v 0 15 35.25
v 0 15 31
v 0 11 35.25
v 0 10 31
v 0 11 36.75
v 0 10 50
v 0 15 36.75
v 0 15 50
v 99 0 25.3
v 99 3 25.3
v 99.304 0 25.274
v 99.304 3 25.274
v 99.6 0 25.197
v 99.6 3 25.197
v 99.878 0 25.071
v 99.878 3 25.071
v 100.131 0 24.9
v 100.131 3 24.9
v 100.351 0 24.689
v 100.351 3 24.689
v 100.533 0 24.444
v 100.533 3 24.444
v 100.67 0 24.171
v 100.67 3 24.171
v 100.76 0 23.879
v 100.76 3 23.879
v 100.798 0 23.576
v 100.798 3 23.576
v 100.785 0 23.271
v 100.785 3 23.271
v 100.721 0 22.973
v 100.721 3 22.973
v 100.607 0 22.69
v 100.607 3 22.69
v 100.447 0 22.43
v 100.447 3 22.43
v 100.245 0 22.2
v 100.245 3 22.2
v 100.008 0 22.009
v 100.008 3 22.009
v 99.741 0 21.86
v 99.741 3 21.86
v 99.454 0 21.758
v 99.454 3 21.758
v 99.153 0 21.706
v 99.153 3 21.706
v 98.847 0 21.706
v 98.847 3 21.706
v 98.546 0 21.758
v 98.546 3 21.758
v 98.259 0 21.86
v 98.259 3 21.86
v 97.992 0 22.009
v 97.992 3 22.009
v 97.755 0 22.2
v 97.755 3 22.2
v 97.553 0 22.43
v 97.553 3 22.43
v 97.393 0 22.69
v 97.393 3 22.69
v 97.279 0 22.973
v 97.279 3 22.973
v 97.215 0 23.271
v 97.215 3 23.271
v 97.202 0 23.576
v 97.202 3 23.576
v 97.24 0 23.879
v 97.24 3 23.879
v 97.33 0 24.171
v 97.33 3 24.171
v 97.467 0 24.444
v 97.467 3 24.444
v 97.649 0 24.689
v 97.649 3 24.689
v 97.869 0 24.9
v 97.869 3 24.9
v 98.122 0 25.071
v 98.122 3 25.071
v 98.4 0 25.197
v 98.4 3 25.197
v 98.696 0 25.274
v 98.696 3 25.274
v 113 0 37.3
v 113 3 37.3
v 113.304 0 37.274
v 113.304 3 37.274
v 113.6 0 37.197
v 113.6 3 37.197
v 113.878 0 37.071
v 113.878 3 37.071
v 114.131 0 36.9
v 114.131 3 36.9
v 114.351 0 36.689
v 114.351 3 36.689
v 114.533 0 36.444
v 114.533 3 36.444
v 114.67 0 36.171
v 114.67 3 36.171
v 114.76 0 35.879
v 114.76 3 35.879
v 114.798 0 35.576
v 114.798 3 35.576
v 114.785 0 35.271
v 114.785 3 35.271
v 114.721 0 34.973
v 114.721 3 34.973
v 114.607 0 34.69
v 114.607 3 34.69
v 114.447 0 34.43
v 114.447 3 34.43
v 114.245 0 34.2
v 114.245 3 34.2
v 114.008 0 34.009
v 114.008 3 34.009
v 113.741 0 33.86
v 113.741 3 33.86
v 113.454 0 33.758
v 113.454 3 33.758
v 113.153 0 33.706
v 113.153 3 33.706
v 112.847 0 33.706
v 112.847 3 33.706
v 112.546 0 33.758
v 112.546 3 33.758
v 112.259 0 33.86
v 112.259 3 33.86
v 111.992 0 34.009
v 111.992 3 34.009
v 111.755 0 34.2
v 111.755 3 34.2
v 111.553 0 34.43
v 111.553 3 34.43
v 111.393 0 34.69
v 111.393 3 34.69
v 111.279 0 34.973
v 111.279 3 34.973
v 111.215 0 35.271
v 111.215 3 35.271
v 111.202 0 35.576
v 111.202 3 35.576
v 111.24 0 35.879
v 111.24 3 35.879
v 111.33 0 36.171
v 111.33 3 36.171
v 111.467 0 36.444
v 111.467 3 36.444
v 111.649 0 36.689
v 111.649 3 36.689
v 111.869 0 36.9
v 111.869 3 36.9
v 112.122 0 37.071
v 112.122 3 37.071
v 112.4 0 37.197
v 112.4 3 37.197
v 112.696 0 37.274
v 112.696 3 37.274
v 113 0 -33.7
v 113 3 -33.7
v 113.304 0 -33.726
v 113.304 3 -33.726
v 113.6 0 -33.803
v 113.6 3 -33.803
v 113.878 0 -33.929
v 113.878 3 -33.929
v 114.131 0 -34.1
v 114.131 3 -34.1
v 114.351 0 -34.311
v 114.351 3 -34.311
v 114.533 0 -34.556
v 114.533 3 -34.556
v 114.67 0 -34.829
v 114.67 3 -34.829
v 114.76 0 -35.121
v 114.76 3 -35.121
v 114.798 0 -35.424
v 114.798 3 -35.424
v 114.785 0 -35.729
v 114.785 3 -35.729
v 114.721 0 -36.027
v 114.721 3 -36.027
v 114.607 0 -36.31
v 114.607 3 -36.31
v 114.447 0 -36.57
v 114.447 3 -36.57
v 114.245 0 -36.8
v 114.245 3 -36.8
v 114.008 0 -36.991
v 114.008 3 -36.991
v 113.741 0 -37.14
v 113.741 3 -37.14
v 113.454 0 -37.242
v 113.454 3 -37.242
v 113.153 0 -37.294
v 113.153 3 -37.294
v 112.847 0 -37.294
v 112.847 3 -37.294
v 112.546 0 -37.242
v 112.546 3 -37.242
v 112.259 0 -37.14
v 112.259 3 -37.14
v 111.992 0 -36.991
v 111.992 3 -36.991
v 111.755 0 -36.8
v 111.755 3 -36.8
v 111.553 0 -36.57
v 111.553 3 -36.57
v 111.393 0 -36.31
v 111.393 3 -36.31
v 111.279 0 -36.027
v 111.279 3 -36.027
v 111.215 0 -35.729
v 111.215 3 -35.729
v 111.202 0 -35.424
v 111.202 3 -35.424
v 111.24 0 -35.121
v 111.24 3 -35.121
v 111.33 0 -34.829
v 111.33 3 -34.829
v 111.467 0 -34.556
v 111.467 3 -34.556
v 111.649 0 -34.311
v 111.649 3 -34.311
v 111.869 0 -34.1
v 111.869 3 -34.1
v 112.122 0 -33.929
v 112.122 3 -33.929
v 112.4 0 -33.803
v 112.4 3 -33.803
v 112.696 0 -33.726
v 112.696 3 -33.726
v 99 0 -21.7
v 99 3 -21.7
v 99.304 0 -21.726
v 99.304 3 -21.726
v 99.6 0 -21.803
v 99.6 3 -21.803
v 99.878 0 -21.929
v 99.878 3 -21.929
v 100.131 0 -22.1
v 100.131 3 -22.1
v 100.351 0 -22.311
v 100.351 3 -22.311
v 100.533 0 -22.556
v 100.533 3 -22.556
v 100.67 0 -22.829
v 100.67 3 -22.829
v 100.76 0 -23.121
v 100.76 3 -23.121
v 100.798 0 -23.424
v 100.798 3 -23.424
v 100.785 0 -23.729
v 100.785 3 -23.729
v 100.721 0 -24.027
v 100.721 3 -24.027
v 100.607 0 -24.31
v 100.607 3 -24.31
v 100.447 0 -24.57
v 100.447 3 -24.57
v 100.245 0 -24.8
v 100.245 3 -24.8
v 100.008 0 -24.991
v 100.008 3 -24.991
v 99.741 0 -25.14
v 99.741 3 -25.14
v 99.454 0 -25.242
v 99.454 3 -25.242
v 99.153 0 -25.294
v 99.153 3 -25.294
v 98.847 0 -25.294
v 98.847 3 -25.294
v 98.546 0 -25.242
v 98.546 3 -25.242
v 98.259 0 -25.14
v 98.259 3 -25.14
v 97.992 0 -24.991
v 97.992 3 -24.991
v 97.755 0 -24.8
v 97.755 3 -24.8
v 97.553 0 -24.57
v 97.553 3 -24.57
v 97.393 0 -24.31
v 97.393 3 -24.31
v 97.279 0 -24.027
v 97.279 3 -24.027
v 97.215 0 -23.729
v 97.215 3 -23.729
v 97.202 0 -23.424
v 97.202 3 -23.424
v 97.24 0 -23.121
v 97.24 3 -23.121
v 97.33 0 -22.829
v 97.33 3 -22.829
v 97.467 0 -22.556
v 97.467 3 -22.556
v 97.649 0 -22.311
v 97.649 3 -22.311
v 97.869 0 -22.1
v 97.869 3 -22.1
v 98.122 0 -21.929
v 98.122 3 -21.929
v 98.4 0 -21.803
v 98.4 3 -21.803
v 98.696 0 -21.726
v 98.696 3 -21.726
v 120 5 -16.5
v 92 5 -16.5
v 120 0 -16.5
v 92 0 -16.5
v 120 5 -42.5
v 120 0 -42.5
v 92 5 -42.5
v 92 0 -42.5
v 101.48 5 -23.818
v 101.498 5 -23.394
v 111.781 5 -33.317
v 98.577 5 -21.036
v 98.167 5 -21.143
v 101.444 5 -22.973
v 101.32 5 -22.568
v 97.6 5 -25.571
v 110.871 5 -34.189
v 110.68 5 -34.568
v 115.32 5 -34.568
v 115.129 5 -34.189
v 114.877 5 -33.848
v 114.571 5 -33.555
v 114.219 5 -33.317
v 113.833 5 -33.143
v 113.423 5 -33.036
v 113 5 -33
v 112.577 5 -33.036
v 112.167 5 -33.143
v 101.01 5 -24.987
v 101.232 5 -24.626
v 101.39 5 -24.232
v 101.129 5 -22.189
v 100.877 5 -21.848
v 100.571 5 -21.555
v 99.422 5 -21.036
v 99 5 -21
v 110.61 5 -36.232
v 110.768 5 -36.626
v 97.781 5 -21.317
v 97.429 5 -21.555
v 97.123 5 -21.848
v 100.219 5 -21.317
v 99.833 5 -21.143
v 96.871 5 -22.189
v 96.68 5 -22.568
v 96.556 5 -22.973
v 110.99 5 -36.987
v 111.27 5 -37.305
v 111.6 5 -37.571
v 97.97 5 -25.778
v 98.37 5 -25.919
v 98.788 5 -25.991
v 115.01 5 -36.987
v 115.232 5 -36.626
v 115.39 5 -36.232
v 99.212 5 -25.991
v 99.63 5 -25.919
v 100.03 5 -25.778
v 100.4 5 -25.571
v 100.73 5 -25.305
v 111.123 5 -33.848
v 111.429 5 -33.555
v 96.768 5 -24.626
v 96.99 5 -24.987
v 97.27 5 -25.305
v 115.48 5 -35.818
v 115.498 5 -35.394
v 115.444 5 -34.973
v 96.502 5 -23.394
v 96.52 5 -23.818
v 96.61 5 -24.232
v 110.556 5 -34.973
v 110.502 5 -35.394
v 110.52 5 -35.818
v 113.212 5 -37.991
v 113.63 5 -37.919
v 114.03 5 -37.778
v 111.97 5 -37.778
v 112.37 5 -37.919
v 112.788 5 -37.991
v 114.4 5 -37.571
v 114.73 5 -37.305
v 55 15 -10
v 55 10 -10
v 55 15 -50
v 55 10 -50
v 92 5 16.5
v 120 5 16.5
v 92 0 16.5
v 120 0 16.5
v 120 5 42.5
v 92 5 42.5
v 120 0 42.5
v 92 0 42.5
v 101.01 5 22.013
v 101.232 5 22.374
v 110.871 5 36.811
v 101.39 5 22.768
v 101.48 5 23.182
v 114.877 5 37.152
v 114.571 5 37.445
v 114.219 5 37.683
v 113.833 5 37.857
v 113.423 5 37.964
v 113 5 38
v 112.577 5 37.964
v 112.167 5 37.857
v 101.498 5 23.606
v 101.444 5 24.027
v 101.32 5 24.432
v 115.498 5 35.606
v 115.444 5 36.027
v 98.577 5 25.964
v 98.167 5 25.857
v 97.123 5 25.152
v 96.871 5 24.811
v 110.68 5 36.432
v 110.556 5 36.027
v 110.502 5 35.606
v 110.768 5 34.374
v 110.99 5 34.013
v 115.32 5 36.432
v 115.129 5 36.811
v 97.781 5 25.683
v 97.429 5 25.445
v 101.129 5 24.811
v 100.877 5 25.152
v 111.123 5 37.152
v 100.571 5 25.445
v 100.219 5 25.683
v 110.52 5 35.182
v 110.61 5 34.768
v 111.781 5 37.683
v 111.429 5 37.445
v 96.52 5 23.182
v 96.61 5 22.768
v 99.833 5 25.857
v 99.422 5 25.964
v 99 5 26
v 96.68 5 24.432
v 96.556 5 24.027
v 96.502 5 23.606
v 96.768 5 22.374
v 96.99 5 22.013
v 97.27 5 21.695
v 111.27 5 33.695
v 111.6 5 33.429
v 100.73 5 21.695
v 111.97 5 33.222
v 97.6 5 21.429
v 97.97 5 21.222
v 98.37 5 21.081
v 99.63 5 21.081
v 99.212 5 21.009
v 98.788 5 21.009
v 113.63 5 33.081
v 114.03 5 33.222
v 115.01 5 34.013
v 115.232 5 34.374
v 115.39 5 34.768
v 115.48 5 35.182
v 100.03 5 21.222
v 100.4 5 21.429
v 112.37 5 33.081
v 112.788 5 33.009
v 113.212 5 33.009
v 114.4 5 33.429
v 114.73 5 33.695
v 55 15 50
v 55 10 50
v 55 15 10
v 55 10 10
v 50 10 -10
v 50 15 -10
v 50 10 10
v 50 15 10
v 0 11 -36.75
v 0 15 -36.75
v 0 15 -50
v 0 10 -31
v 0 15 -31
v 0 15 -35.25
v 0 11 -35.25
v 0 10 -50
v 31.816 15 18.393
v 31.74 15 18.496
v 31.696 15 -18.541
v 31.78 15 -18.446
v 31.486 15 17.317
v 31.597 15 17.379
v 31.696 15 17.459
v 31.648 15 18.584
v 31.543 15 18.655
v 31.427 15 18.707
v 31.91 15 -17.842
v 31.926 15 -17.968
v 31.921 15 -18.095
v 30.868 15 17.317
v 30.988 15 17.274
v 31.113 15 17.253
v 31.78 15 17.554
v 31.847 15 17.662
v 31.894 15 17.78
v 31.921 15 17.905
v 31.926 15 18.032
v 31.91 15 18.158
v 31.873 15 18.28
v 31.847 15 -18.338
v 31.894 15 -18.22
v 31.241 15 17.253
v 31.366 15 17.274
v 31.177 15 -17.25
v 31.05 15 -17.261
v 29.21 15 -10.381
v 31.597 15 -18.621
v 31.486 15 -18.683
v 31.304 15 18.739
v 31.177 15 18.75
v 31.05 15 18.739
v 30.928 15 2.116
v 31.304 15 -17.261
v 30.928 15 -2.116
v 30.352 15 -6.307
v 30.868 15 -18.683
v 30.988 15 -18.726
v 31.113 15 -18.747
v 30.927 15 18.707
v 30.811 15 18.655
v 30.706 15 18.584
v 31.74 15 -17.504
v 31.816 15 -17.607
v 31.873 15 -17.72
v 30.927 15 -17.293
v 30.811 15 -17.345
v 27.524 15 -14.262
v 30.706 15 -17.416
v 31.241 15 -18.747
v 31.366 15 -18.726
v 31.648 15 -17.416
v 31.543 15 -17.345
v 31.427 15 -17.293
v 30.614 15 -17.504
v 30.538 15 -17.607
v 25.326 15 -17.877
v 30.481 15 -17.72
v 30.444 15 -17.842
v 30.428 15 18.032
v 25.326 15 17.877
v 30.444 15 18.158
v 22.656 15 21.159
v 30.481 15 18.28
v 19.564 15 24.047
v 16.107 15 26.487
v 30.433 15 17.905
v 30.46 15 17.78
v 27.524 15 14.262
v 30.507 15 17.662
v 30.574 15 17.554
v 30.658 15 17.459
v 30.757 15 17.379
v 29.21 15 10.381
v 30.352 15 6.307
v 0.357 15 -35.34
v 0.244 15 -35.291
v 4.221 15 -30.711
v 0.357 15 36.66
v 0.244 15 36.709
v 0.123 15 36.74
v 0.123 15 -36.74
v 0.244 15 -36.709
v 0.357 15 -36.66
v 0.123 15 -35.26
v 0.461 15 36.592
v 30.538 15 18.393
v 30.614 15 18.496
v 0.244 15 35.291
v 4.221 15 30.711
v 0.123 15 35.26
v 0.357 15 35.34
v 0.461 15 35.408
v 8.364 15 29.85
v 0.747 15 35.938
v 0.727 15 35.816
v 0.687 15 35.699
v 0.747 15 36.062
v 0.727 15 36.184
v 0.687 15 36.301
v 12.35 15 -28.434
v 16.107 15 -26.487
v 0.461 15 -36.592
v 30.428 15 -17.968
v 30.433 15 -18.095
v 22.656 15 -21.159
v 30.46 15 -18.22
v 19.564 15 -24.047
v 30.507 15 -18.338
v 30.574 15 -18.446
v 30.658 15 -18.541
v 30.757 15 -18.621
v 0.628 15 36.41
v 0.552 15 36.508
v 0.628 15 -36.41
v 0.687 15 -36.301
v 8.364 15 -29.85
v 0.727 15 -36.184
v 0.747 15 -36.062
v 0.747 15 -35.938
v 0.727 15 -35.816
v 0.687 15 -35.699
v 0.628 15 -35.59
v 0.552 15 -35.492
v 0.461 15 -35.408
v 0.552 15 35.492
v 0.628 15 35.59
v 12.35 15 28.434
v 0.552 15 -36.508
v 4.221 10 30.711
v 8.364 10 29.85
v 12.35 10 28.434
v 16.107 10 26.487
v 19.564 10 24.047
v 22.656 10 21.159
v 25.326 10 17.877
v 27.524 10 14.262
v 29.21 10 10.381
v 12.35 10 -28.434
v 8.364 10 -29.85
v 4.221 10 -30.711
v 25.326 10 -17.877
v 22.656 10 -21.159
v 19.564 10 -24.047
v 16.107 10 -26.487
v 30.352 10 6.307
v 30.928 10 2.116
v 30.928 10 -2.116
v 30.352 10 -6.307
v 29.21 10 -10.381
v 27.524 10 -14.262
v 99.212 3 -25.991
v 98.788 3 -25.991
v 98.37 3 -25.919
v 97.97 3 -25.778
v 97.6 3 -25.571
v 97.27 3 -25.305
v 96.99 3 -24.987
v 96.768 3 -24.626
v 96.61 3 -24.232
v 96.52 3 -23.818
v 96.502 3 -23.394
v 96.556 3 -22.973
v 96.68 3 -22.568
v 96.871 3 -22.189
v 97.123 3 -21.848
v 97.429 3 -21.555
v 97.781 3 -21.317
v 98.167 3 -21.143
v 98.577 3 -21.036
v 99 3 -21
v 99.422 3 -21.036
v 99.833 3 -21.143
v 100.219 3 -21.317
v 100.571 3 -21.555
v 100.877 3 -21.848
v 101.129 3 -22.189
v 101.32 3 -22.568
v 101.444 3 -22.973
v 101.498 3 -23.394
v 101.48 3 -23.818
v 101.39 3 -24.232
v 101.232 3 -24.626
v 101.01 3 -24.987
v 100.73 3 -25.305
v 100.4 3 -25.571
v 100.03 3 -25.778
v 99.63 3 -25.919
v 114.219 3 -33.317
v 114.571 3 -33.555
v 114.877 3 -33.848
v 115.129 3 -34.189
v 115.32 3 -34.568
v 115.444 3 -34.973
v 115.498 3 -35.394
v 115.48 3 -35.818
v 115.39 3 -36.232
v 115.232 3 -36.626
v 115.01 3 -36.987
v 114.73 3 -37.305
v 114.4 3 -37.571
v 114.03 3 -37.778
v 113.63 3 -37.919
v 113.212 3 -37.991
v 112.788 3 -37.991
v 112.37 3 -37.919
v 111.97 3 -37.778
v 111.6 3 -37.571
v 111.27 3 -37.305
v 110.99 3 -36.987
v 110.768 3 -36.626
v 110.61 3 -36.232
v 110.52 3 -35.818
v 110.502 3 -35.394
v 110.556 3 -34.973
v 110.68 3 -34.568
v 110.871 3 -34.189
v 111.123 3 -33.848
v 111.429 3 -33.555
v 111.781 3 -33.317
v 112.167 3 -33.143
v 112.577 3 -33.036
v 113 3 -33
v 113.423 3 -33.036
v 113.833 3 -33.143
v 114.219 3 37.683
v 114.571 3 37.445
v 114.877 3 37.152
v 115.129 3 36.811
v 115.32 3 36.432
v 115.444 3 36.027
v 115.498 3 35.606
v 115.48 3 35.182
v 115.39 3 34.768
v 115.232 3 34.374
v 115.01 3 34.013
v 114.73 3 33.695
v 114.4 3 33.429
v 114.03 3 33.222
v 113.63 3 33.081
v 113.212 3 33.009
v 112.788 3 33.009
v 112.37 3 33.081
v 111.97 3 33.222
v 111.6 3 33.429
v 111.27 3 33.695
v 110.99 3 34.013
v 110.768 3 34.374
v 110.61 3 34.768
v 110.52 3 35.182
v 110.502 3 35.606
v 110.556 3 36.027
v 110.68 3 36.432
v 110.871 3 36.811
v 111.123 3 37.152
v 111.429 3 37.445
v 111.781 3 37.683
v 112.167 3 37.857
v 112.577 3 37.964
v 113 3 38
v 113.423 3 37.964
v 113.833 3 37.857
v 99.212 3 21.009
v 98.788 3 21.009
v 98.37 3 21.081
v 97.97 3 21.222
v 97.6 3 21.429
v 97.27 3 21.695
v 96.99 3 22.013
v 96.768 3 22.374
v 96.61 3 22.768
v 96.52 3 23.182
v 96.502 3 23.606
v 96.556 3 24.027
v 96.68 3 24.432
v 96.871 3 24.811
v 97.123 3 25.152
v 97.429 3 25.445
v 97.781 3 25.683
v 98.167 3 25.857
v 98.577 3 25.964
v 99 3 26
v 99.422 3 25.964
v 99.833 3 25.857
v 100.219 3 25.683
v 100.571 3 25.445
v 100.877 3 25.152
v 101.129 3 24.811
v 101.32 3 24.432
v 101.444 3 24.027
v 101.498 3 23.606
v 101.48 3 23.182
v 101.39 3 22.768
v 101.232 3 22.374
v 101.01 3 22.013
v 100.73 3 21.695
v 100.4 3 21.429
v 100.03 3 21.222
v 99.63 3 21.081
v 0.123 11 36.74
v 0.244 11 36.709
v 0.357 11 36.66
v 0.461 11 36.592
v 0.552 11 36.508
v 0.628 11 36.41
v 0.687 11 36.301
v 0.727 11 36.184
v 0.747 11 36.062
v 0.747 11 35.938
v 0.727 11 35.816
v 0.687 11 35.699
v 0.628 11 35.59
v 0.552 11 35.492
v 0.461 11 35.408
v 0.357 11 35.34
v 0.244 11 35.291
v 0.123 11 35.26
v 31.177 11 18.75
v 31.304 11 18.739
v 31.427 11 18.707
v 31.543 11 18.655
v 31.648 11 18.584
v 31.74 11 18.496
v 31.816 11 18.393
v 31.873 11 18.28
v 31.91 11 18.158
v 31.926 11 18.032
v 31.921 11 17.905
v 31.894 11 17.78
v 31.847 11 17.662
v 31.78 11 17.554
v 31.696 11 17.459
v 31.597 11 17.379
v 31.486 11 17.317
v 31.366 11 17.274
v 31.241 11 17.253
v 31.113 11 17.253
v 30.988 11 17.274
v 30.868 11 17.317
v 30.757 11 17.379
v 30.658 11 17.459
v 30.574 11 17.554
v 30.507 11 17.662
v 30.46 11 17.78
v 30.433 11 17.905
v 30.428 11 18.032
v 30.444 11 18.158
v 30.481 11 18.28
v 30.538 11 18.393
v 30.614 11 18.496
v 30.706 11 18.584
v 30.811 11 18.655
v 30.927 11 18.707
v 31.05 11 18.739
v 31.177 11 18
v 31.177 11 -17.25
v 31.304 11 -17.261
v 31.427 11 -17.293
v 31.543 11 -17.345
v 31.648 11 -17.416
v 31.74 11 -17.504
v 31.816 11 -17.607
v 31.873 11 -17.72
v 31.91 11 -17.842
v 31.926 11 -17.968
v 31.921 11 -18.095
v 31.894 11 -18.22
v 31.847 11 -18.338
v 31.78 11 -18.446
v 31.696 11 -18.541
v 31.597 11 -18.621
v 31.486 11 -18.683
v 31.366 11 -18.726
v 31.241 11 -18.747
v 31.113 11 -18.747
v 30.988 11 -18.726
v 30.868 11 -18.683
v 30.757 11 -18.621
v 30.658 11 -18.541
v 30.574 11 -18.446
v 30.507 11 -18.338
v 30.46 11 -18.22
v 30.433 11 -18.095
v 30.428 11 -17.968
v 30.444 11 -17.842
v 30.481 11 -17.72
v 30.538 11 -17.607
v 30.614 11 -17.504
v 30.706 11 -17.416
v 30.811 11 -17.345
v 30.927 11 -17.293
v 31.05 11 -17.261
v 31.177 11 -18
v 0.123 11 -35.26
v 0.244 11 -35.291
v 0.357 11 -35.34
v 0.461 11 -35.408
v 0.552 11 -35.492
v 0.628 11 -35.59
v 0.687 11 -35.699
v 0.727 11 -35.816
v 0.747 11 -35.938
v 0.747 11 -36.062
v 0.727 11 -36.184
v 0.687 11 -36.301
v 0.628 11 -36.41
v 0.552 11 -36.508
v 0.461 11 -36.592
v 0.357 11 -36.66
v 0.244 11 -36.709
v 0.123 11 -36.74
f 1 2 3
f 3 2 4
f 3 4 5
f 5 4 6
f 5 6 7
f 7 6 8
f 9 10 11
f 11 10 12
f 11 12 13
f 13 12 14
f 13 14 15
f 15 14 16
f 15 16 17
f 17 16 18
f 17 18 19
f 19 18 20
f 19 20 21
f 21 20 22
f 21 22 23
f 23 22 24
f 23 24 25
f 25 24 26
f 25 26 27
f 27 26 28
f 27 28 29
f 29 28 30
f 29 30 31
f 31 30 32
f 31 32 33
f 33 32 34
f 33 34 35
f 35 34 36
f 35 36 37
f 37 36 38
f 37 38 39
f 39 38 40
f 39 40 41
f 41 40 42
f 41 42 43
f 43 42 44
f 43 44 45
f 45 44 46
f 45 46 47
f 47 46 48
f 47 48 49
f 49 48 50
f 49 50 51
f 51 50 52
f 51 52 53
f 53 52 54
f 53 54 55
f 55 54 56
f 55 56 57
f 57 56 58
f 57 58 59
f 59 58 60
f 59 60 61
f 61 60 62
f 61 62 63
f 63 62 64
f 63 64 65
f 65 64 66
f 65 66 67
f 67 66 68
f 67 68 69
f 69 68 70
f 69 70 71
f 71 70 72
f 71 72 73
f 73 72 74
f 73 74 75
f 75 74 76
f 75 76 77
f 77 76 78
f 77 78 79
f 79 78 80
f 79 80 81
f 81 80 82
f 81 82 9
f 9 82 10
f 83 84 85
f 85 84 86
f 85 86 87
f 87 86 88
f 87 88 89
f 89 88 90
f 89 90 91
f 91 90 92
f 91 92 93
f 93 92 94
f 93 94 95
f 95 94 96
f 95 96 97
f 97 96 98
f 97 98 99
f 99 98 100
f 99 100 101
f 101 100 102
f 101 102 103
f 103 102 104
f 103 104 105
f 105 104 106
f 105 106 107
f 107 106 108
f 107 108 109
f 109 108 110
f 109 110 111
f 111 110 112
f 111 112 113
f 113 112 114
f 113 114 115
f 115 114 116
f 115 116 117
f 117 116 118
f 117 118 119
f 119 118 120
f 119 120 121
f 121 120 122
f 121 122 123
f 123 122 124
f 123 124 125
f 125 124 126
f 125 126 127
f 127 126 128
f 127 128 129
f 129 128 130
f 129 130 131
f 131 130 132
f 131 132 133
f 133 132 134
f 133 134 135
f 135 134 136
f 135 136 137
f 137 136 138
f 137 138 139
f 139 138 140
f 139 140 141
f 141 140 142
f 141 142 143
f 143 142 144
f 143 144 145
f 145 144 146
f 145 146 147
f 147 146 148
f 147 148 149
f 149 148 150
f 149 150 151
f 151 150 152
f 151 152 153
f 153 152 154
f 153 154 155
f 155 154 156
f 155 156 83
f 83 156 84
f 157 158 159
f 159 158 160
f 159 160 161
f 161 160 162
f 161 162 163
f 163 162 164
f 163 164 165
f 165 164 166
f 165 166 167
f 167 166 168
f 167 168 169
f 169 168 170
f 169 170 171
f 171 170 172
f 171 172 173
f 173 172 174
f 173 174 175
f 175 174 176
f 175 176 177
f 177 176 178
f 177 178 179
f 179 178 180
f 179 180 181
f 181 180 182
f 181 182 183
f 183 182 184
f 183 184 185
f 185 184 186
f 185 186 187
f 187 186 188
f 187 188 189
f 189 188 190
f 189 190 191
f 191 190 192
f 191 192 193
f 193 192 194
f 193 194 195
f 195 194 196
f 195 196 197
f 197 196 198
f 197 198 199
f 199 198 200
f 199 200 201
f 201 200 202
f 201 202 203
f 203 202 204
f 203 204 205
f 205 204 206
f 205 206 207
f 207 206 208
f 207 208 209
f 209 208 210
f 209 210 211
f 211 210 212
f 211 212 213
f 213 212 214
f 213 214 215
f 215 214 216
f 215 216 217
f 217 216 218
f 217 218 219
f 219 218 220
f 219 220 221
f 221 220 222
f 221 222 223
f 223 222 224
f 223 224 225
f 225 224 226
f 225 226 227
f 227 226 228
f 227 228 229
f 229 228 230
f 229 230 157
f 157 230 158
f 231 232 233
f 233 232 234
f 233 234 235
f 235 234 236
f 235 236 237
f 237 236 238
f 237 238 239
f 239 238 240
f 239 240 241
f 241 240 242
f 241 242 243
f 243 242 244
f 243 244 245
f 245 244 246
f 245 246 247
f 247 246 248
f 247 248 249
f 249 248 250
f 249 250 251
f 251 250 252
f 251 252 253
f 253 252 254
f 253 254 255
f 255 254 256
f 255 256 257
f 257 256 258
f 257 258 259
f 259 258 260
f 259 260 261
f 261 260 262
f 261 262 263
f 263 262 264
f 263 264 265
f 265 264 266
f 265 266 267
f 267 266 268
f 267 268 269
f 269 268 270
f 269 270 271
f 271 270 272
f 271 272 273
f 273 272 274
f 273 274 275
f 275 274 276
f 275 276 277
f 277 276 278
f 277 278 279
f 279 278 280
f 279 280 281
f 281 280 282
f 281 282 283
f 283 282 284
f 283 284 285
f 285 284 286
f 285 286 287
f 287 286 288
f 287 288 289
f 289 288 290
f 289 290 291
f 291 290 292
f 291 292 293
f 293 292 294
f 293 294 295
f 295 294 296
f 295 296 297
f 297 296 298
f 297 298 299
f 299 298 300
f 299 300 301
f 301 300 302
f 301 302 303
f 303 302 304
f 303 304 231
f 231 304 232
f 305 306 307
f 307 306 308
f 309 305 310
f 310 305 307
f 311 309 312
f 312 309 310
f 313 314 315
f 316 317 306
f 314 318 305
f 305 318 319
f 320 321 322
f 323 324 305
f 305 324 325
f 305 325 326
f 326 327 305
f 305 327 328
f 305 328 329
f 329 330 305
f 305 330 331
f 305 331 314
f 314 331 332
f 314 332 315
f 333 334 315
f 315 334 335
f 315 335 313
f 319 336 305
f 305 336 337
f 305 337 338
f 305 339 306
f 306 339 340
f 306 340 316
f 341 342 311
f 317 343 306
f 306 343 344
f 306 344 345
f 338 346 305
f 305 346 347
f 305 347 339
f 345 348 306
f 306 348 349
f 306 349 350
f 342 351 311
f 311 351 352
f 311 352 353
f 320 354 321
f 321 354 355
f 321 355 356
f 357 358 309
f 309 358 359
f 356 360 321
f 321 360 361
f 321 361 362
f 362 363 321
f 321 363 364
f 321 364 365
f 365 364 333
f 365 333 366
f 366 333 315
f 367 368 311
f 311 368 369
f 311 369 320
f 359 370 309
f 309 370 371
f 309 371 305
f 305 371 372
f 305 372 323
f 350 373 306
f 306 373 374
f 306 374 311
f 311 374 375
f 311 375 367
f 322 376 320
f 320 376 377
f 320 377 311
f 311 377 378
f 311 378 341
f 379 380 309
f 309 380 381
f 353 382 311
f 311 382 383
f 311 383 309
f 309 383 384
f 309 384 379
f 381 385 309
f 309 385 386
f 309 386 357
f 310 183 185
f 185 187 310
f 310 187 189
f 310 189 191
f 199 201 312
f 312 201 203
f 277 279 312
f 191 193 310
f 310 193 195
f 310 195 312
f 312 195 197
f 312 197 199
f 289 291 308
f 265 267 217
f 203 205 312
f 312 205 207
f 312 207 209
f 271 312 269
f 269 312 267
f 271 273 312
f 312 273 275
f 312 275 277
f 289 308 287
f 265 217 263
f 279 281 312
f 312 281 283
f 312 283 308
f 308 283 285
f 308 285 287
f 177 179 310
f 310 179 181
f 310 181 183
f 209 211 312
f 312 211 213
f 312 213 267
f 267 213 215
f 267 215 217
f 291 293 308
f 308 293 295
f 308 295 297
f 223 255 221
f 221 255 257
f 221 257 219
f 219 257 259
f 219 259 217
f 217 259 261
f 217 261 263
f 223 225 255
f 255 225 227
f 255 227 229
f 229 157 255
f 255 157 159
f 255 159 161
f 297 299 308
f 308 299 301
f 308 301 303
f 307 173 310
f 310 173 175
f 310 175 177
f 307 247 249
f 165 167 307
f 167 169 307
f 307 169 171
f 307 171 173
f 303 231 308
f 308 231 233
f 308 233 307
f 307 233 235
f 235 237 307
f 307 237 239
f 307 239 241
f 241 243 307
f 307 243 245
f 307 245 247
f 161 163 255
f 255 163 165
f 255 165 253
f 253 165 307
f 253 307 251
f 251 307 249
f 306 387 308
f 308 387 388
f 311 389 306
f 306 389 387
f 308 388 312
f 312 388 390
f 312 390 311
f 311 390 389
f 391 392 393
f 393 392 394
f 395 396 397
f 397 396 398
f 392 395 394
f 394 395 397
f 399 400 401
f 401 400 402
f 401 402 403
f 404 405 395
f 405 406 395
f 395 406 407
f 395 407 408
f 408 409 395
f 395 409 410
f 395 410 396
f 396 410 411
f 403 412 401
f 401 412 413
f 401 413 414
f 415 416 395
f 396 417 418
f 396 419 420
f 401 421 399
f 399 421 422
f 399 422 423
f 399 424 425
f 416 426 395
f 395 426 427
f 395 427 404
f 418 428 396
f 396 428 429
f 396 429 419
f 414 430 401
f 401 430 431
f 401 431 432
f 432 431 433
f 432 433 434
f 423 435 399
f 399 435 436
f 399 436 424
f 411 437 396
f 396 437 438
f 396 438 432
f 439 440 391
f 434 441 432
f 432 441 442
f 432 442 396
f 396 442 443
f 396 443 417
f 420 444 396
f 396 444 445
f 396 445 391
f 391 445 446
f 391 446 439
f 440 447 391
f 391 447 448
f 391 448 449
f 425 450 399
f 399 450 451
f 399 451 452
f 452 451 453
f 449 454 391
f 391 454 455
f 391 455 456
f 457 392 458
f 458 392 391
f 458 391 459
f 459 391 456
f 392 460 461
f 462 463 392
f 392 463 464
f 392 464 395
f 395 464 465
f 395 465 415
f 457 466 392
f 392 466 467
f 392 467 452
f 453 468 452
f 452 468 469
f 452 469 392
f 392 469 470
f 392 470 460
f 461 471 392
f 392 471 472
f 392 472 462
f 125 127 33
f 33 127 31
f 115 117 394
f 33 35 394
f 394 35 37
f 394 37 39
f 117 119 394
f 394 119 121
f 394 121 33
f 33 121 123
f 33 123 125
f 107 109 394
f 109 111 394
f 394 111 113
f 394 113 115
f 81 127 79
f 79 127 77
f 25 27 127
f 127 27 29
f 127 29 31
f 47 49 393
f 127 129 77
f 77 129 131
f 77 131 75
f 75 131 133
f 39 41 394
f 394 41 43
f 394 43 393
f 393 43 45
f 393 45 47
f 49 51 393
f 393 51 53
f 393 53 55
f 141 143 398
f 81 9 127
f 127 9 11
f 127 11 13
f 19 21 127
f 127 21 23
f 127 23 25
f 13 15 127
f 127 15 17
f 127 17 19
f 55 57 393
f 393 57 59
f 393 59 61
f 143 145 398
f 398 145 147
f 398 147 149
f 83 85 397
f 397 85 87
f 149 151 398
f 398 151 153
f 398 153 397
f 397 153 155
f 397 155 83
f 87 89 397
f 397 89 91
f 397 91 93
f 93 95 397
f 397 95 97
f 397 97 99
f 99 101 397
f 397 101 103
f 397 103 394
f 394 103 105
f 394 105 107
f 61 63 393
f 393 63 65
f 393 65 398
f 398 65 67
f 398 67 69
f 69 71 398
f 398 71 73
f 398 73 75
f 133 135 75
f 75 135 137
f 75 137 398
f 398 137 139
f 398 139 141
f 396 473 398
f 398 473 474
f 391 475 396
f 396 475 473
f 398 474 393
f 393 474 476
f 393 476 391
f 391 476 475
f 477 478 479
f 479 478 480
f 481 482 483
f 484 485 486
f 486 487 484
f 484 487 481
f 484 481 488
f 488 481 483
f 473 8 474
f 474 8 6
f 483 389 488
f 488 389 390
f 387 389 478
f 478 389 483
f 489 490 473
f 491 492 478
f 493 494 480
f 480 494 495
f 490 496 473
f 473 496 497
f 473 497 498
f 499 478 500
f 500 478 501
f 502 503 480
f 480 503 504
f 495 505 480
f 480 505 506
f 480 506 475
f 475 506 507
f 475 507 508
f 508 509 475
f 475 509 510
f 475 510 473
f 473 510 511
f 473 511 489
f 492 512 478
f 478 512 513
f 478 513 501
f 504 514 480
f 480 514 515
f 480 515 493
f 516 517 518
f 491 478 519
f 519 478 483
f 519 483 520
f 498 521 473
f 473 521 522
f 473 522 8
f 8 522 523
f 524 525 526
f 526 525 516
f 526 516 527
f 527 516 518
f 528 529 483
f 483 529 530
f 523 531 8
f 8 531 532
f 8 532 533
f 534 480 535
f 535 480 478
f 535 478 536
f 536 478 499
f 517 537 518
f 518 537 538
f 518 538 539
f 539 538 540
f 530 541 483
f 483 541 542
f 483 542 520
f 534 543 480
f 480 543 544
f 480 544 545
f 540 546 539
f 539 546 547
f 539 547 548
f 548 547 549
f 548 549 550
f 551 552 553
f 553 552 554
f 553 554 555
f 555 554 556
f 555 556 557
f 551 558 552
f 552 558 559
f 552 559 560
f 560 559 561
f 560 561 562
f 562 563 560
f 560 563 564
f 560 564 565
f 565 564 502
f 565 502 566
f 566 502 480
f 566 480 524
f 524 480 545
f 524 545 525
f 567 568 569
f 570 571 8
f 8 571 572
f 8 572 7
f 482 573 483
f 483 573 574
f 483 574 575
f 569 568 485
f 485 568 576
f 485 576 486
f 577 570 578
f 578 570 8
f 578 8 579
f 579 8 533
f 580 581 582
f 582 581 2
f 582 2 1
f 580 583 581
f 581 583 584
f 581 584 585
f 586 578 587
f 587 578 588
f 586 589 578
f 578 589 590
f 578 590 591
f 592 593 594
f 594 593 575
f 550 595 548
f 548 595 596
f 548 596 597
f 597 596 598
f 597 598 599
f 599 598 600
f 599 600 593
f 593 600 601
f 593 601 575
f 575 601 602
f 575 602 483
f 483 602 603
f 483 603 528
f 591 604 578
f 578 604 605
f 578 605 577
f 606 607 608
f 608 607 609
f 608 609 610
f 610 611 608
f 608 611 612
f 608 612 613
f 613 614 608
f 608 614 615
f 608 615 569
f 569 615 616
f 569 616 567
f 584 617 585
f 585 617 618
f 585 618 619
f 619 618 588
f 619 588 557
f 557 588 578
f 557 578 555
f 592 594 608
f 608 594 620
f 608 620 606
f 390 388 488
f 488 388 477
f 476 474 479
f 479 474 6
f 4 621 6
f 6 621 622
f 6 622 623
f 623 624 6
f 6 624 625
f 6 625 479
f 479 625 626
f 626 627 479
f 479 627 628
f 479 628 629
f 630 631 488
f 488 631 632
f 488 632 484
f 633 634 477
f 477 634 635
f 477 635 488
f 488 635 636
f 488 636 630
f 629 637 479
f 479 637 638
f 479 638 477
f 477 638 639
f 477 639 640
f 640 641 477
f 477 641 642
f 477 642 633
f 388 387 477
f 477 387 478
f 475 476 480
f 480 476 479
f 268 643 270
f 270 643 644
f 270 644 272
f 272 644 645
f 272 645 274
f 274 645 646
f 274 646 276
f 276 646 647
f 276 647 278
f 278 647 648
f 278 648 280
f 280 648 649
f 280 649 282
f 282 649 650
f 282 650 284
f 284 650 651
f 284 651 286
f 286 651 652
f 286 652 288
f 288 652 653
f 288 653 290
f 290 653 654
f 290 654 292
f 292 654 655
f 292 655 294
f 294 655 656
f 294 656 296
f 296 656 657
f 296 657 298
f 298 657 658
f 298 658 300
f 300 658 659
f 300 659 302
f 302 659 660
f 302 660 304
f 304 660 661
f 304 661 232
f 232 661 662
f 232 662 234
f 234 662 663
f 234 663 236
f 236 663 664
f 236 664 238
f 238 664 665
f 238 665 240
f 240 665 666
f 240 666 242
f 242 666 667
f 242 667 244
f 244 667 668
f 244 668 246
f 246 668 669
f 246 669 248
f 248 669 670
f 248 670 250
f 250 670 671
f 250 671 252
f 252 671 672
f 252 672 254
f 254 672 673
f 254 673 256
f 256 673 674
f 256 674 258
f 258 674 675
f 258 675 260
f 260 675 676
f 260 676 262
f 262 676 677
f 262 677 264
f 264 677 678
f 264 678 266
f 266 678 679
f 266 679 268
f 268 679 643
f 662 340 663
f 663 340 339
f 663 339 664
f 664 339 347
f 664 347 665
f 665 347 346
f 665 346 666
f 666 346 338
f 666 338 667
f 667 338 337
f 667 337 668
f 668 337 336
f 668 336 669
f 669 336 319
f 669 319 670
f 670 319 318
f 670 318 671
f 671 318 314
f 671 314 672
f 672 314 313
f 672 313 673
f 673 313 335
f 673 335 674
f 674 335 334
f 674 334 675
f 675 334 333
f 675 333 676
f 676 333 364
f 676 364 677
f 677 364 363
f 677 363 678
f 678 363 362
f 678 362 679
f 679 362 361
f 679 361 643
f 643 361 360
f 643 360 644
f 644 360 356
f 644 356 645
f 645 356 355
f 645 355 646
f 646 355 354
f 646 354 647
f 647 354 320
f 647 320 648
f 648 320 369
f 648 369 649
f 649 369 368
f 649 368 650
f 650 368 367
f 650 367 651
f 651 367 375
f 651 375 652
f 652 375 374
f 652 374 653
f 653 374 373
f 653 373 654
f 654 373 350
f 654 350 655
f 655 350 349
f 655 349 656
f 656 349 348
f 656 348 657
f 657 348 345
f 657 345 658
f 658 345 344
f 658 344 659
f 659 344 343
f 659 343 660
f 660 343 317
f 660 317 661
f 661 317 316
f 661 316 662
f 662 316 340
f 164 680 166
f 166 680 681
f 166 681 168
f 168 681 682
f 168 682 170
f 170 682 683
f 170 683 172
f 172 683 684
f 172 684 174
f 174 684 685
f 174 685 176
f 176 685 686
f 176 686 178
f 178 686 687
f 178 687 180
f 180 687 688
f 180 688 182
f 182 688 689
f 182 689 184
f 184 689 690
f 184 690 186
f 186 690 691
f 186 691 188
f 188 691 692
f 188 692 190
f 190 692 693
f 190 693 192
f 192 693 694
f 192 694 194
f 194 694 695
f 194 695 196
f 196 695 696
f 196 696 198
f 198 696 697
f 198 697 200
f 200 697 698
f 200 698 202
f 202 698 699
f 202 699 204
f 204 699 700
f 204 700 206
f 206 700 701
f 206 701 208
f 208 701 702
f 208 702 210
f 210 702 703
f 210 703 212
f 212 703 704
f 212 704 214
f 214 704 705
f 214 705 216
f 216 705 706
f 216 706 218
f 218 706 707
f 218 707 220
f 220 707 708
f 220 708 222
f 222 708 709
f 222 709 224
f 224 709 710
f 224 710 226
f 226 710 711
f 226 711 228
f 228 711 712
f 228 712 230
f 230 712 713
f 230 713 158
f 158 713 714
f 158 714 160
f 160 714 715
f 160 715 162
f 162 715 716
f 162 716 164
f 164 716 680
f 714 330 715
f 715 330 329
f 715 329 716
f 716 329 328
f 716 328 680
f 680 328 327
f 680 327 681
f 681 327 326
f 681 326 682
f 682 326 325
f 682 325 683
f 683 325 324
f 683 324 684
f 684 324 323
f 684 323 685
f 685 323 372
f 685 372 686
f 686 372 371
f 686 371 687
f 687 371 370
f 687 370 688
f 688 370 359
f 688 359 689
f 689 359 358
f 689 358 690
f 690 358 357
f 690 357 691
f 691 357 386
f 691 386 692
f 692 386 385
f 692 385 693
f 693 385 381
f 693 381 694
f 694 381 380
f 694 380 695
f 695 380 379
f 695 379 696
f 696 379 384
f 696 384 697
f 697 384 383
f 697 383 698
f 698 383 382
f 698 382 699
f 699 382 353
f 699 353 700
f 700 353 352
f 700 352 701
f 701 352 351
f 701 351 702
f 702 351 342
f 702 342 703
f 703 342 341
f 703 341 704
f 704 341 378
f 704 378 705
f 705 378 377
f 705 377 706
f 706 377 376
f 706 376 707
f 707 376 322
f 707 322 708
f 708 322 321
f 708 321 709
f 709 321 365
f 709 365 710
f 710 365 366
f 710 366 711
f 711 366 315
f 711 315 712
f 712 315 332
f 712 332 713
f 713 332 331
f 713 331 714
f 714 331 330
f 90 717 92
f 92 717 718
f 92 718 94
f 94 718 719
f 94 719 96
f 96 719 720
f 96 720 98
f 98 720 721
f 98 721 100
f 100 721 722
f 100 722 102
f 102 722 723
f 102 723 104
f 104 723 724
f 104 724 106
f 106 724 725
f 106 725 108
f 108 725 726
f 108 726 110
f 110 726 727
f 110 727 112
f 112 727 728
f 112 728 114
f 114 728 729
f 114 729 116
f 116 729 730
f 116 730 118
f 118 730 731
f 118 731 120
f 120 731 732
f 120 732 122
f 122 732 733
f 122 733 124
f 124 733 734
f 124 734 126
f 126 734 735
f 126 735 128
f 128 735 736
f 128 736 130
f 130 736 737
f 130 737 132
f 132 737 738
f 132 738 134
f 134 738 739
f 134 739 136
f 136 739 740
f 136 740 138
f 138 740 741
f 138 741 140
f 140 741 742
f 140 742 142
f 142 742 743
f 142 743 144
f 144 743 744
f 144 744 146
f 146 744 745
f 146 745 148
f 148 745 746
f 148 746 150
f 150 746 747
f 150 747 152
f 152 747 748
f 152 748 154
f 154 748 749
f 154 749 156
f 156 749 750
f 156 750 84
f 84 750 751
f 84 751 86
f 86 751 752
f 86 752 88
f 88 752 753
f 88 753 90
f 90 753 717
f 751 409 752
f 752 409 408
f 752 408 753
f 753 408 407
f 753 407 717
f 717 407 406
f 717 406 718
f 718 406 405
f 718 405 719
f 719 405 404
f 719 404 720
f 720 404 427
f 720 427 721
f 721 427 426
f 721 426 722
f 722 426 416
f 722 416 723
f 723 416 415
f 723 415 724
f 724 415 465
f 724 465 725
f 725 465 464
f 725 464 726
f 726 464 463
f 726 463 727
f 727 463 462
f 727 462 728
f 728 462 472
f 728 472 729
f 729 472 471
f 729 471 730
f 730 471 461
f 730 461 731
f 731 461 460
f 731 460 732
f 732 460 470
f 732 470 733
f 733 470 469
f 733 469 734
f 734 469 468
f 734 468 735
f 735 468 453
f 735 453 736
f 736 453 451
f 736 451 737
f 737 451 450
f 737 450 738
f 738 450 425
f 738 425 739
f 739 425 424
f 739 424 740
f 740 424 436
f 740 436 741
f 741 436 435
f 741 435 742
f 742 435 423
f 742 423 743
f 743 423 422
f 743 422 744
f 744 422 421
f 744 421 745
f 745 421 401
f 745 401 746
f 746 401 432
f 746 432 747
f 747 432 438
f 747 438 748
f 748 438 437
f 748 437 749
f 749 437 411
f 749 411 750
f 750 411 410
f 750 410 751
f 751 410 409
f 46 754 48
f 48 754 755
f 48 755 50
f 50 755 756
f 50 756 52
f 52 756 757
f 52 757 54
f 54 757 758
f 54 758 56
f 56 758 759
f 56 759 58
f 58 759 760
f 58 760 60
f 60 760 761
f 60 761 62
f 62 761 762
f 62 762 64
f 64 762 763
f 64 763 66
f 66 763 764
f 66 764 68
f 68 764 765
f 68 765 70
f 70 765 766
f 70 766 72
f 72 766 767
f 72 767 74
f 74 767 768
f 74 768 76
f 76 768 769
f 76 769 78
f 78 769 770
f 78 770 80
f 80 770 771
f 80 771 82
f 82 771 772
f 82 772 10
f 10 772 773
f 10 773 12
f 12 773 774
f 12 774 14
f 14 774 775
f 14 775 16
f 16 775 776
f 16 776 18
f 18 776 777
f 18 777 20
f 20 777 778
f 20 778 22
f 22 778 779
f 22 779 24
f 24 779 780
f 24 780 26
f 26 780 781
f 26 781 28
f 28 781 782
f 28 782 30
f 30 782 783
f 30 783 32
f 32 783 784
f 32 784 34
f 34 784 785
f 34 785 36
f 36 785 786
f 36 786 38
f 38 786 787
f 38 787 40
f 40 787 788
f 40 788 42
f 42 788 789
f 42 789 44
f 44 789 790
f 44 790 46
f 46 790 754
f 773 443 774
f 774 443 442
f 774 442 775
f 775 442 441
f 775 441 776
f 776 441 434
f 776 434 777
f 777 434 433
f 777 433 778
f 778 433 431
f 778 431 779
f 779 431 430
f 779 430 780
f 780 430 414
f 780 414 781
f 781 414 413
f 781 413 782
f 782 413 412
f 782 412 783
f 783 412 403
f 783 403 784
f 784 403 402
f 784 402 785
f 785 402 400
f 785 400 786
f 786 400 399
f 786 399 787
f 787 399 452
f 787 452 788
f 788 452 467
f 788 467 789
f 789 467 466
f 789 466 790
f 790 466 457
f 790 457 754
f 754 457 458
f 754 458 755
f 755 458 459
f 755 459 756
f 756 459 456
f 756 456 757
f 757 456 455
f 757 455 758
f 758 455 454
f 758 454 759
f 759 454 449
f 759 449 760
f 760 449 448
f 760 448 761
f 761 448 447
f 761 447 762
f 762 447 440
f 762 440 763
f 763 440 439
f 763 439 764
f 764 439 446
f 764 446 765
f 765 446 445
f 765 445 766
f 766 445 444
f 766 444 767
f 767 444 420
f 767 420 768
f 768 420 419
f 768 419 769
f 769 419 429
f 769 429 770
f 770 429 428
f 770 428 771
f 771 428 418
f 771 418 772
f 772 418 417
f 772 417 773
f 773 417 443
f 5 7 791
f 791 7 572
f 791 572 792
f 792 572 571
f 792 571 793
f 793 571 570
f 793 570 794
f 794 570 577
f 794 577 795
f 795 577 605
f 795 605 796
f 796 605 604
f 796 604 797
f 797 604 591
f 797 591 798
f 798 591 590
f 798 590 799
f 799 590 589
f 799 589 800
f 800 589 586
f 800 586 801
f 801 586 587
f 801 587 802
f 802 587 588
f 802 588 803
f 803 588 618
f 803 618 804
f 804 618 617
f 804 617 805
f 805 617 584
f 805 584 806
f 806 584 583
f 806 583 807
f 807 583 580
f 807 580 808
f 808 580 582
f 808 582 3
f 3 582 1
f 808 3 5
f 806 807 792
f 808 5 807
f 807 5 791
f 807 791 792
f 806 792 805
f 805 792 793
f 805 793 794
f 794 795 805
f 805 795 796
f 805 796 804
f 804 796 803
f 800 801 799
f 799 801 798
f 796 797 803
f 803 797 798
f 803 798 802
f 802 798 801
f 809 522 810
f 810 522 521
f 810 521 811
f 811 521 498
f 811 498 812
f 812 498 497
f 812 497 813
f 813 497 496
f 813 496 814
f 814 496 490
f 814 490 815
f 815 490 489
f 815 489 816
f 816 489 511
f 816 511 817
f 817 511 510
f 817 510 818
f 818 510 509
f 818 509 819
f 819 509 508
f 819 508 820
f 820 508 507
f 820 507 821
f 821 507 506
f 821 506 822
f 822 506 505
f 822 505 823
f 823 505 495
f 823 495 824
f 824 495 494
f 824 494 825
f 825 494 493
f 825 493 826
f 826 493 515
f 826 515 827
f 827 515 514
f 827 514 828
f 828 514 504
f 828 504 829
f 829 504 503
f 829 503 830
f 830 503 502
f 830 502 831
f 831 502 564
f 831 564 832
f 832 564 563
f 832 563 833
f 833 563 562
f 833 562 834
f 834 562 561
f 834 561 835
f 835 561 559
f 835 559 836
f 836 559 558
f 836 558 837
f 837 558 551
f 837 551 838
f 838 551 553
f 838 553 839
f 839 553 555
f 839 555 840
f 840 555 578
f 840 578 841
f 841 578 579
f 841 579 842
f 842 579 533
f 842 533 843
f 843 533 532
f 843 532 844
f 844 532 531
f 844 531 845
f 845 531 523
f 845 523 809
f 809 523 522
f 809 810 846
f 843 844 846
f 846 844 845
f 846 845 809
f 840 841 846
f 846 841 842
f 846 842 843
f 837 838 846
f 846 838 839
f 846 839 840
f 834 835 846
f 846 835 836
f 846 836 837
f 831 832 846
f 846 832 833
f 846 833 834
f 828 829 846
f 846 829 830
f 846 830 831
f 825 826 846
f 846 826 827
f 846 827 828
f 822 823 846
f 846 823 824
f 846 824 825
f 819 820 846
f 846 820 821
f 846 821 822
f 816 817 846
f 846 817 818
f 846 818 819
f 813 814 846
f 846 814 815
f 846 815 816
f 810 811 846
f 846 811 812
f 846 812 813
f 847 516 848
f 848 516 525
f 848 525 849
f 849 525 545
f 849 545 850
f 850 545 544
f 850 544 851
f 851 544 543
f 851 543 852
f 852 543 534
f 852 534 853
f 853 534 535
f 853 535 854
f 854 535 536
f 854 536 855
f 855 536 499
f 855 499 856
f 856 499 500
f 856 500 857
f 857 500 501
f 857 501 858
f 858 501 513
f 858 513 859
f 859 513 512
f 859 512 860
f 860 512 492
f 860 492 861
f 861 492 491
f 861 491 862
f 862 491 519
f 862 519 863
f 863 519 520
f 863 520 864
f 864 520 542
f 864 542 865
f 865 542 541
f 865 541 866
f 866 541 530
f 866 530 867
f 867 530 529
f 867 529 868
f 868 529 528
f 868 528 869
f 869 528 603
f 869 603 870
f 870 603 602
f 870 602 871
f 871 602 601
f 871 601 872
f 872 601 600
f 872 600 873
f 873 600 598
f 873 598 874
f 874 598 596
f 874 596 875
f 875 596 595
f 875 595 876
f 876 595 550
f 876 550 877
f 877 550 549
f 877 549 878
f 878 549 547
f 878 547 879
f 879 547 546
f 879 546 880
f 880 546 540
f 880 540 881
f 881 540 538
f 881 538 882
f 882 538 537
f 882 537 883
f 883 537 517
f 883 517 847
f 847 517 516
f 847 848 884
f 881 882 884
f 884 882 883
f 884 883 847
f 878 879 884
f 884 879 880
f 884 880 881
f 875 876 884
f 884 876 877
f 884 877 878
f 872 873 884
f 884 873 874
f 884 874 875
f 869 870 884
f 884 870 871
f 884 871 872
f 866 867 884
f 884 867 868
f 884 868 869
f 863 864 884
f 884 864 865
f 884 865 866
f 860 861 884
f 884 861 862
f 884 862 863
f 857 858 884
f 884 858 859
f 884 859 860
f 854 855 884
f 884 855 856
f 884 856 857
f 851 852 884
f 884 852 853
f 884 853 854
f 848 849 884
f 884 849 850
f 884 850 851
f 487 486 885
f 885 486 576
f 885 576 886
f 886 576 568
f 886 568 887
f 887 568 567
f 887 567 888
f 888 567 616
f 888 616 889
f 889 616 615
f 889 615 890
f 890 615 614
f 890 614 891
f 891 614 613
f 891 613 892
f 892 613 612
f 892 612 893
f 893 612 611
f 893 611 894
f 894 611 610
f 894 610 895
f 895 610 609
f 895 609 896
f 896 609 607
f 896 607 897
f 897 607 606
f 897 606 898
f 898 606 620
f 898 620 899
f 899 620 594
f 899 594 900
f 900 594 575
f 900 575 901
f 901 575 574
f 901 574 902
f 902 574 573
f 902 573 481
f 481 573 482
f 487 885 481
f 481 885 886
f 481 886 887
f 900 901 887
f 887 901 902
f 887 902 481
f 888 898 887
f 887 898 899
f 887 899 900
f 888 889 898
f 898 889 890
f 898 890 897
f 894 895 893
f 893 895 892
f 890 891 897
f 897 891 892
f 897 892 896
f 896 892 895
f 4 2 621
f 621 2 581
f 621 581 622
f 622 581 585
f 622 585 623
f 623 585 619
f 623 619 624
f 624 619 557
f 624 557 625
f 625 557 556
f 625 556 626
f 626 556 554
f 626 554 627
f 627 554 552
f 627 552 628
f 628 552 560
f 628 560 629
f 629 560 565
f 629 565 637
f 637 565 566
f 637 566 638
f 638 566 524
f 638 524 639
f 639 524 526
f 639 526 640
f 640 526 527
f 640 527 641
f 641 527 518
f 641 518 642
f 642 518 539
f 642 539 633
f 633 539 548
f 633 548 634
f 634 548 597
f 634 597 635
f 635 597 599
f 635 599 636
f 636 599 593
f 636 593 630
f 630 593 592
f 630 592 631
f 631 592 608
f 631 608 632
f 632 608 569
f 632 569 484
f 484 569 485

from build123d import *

# Parameters (mm, degrees)
SKETCH_1_W          = 28
SKETCH_1_H          = 26
EXTRUDE_1_DEPTH     = 5
EXTRUDE_1_2_DEPTH   = 5
EXTRUDE_START       = 10
SKETCH_1_12_W       = 50
SKETCH_1_12_H       = 100
EXTRUDE_2_DEPTH     = 5
SKETCH_2_W          = 40
SKETCH_2_H          = 5
EXTRUDE_3_DEPTH     = 5
SKETCH_3_R          = 1.8
CUT_EXTRUDE_1_DEPTH = 131.38404815
SKETCH_3_3_R        = 2.5
CUT_EXTRUDE_2_DEPTH = 2
SKETCH_4_R          = 0.75
CUT_EXTRUDE_3_DEPTH = 4
SKETCH_5_R          = 31
CUT_EXTRUDE_4_DEPTH = 131.862523333


with BuildPart() as part:
    # 草图1 → 凸台-拉伸1 (new body)
    with BuildSketch(Plane(origin=(0, 0, 0), x_dir=(1, 0, 0), z_dir=(0, 1, 0))):
        with Locations((106, 29.5)):
            Rectangle(SKETCH_1_W, SKETCH_1_H)
    extrude(amount=EXTRUDE_1_DEPTH)


with BuildPart() as body_2:
    # 草图1 → Extrude 1 2 (new body)
    with BuildSketch(Plane(origin=(0, 0, 0), x_dir=(1, 0, 0), z_dir=(0, 1, 0))):
        with Locations((106, -29.5)):
            Rectangle(SKETCH_1_W, SKETCH_1_H)
    extrude(amount=EXTRUDE_1_2_DEPTH)


with BuildPart() as body_3:
    # 草图1<12> → 凸台-拉伸2 (new body)
    with BuildSketch(Plane(origin=(0, 0, 0), x_dir=(1, 0, 0), z_dir=(0, 1, 0)).offset(EXTRUDE_START)):
        with Locations((25, 0)):
            Rectangle(SKETCH_1_12_W, SKETCH_1_12_H)
    extrude(amount=EXTRUDE_2_DEPTH)

    # 草图2 → 凸台-拉伸3 (add)
    with BuildSketch(Plane(origin=(50, 0, 0), x_dir=(0, 0, -1), z_dir=(1, 0, 0))):
        with Locations((30, 12.5)):
            Rectangle(SKETCH_2_W, SKETCH_2_H)
        with Locations((-30, 12.5)):
            Rectangle(SKETCH_2_W, SKETCH_2_H)
    extrude(amount=EXTRUDE_3_DEPTH)


    add(body_2.part)  # loft_5 joins it to this body
    # loft from a face of the part (loft_5)
    loft([body_3.faces().sort_by_distance((55, 12.5, 30))[0], body_3.faces().sort_by_distance((92, 2.5, 29.5))[0]])


    add(part.part)  # loft_6 joins it to this body
    # loft from a face of the part (loft_6)
    loft([body_3.faces().sort_by_distance((55, 12.5, -30))[0], body_3.faces().sort_by_distance((92, 2.5, -29.5))[0]])

    # 草图3 → 切除-拉伸1 (cut, through all)
    with BuildSketch(Plane(origin=(0, 5, 0), x_dir=(1, 0, 0), z_dir=(0, 1, 0))):
        with Locations(Location((113, 35.5, 0), (0, 0, 270))):
            Circle(SKETCH_3_R)
        with Locations(Location((99, 23.5, 0), (0, 0, 270))):
            Circle(SKETCH_3_R)
        with Locations(Location((113, -35.5, 0), (0, 0, 270))):
            Circle(SKETCH_3_R)
        with Locations(Location((99, -23.5, 0), (0, 0, 270))):
            Circle(SKETCH_3_R)
    extrude(amount=-CUT_EXTRUDE_1_DEPTH, mode=Mode.SUBTRACT)

    # 草图3<3> → 切除-拉伸2 (cut)
    with BuildSketch(Plane(origin=(0, 5, 0), x_dir=(1, 0, 0), z_dir=(0, 1, 0))):
        with Locations(Location((99, 23.5, 0), (0, 0, 270))):
            Circle(SKETCH_3_3_R)
        with Locations(Location((113, 35.5, 0), (0, 0, 270))):
            Circle(SKETCH_3_3_R)
        with Locations(Location((113, -35.5, 0), (0, 0, 270))):
            Circle(SKETCH_3_3_R)
        with Locations(Location((99, -23.5, 0), (0, 0, 270))):
            Circle(SKETCH_3_3_R)
    extrude(amount=-CUT_EXTRUDE_2_DEPTH, mode=Mode.SUBTRACT)

    # 草图4 → 切除-拉伸3 (cut)
    with BuildSketch(Plane(origin=(0, 15, 0), x_dir=(1, 0, 0), z_dir=(0, 1, 0))):
        with Locations((0, 36)):
            Circle(SKETCH_4_R)
        with Locations(Location((31.176914536, 18, 0), (0, 0, 270))):
            Circle(SKETCH_4_R)
        with Locations(Location((31.176914536, -18, 0), (0, 0, 270))):
            Circle(SKETCH_4_R)
        with Locations((0, -36)):
            Circle(SKETCH_4_R)
    extrude(amount=-CUT_EXTRUDE_3_DEPTH, mode=Mode.SUBTRACT)

    # 草图5 → 切除-拉伸4 (cut, through all)
    with BuildSketch(Plane(origin=(0, 15, 0), x_dir=(1, 0, 0), z_dir=(0, 1, 0))):
        Circle(SKETCH_5_R)
    extrude(amount=-CUT_EXTRUDE_4_DEPTH, mode=Mode.SUBTRACT)


solid = body_3.part
